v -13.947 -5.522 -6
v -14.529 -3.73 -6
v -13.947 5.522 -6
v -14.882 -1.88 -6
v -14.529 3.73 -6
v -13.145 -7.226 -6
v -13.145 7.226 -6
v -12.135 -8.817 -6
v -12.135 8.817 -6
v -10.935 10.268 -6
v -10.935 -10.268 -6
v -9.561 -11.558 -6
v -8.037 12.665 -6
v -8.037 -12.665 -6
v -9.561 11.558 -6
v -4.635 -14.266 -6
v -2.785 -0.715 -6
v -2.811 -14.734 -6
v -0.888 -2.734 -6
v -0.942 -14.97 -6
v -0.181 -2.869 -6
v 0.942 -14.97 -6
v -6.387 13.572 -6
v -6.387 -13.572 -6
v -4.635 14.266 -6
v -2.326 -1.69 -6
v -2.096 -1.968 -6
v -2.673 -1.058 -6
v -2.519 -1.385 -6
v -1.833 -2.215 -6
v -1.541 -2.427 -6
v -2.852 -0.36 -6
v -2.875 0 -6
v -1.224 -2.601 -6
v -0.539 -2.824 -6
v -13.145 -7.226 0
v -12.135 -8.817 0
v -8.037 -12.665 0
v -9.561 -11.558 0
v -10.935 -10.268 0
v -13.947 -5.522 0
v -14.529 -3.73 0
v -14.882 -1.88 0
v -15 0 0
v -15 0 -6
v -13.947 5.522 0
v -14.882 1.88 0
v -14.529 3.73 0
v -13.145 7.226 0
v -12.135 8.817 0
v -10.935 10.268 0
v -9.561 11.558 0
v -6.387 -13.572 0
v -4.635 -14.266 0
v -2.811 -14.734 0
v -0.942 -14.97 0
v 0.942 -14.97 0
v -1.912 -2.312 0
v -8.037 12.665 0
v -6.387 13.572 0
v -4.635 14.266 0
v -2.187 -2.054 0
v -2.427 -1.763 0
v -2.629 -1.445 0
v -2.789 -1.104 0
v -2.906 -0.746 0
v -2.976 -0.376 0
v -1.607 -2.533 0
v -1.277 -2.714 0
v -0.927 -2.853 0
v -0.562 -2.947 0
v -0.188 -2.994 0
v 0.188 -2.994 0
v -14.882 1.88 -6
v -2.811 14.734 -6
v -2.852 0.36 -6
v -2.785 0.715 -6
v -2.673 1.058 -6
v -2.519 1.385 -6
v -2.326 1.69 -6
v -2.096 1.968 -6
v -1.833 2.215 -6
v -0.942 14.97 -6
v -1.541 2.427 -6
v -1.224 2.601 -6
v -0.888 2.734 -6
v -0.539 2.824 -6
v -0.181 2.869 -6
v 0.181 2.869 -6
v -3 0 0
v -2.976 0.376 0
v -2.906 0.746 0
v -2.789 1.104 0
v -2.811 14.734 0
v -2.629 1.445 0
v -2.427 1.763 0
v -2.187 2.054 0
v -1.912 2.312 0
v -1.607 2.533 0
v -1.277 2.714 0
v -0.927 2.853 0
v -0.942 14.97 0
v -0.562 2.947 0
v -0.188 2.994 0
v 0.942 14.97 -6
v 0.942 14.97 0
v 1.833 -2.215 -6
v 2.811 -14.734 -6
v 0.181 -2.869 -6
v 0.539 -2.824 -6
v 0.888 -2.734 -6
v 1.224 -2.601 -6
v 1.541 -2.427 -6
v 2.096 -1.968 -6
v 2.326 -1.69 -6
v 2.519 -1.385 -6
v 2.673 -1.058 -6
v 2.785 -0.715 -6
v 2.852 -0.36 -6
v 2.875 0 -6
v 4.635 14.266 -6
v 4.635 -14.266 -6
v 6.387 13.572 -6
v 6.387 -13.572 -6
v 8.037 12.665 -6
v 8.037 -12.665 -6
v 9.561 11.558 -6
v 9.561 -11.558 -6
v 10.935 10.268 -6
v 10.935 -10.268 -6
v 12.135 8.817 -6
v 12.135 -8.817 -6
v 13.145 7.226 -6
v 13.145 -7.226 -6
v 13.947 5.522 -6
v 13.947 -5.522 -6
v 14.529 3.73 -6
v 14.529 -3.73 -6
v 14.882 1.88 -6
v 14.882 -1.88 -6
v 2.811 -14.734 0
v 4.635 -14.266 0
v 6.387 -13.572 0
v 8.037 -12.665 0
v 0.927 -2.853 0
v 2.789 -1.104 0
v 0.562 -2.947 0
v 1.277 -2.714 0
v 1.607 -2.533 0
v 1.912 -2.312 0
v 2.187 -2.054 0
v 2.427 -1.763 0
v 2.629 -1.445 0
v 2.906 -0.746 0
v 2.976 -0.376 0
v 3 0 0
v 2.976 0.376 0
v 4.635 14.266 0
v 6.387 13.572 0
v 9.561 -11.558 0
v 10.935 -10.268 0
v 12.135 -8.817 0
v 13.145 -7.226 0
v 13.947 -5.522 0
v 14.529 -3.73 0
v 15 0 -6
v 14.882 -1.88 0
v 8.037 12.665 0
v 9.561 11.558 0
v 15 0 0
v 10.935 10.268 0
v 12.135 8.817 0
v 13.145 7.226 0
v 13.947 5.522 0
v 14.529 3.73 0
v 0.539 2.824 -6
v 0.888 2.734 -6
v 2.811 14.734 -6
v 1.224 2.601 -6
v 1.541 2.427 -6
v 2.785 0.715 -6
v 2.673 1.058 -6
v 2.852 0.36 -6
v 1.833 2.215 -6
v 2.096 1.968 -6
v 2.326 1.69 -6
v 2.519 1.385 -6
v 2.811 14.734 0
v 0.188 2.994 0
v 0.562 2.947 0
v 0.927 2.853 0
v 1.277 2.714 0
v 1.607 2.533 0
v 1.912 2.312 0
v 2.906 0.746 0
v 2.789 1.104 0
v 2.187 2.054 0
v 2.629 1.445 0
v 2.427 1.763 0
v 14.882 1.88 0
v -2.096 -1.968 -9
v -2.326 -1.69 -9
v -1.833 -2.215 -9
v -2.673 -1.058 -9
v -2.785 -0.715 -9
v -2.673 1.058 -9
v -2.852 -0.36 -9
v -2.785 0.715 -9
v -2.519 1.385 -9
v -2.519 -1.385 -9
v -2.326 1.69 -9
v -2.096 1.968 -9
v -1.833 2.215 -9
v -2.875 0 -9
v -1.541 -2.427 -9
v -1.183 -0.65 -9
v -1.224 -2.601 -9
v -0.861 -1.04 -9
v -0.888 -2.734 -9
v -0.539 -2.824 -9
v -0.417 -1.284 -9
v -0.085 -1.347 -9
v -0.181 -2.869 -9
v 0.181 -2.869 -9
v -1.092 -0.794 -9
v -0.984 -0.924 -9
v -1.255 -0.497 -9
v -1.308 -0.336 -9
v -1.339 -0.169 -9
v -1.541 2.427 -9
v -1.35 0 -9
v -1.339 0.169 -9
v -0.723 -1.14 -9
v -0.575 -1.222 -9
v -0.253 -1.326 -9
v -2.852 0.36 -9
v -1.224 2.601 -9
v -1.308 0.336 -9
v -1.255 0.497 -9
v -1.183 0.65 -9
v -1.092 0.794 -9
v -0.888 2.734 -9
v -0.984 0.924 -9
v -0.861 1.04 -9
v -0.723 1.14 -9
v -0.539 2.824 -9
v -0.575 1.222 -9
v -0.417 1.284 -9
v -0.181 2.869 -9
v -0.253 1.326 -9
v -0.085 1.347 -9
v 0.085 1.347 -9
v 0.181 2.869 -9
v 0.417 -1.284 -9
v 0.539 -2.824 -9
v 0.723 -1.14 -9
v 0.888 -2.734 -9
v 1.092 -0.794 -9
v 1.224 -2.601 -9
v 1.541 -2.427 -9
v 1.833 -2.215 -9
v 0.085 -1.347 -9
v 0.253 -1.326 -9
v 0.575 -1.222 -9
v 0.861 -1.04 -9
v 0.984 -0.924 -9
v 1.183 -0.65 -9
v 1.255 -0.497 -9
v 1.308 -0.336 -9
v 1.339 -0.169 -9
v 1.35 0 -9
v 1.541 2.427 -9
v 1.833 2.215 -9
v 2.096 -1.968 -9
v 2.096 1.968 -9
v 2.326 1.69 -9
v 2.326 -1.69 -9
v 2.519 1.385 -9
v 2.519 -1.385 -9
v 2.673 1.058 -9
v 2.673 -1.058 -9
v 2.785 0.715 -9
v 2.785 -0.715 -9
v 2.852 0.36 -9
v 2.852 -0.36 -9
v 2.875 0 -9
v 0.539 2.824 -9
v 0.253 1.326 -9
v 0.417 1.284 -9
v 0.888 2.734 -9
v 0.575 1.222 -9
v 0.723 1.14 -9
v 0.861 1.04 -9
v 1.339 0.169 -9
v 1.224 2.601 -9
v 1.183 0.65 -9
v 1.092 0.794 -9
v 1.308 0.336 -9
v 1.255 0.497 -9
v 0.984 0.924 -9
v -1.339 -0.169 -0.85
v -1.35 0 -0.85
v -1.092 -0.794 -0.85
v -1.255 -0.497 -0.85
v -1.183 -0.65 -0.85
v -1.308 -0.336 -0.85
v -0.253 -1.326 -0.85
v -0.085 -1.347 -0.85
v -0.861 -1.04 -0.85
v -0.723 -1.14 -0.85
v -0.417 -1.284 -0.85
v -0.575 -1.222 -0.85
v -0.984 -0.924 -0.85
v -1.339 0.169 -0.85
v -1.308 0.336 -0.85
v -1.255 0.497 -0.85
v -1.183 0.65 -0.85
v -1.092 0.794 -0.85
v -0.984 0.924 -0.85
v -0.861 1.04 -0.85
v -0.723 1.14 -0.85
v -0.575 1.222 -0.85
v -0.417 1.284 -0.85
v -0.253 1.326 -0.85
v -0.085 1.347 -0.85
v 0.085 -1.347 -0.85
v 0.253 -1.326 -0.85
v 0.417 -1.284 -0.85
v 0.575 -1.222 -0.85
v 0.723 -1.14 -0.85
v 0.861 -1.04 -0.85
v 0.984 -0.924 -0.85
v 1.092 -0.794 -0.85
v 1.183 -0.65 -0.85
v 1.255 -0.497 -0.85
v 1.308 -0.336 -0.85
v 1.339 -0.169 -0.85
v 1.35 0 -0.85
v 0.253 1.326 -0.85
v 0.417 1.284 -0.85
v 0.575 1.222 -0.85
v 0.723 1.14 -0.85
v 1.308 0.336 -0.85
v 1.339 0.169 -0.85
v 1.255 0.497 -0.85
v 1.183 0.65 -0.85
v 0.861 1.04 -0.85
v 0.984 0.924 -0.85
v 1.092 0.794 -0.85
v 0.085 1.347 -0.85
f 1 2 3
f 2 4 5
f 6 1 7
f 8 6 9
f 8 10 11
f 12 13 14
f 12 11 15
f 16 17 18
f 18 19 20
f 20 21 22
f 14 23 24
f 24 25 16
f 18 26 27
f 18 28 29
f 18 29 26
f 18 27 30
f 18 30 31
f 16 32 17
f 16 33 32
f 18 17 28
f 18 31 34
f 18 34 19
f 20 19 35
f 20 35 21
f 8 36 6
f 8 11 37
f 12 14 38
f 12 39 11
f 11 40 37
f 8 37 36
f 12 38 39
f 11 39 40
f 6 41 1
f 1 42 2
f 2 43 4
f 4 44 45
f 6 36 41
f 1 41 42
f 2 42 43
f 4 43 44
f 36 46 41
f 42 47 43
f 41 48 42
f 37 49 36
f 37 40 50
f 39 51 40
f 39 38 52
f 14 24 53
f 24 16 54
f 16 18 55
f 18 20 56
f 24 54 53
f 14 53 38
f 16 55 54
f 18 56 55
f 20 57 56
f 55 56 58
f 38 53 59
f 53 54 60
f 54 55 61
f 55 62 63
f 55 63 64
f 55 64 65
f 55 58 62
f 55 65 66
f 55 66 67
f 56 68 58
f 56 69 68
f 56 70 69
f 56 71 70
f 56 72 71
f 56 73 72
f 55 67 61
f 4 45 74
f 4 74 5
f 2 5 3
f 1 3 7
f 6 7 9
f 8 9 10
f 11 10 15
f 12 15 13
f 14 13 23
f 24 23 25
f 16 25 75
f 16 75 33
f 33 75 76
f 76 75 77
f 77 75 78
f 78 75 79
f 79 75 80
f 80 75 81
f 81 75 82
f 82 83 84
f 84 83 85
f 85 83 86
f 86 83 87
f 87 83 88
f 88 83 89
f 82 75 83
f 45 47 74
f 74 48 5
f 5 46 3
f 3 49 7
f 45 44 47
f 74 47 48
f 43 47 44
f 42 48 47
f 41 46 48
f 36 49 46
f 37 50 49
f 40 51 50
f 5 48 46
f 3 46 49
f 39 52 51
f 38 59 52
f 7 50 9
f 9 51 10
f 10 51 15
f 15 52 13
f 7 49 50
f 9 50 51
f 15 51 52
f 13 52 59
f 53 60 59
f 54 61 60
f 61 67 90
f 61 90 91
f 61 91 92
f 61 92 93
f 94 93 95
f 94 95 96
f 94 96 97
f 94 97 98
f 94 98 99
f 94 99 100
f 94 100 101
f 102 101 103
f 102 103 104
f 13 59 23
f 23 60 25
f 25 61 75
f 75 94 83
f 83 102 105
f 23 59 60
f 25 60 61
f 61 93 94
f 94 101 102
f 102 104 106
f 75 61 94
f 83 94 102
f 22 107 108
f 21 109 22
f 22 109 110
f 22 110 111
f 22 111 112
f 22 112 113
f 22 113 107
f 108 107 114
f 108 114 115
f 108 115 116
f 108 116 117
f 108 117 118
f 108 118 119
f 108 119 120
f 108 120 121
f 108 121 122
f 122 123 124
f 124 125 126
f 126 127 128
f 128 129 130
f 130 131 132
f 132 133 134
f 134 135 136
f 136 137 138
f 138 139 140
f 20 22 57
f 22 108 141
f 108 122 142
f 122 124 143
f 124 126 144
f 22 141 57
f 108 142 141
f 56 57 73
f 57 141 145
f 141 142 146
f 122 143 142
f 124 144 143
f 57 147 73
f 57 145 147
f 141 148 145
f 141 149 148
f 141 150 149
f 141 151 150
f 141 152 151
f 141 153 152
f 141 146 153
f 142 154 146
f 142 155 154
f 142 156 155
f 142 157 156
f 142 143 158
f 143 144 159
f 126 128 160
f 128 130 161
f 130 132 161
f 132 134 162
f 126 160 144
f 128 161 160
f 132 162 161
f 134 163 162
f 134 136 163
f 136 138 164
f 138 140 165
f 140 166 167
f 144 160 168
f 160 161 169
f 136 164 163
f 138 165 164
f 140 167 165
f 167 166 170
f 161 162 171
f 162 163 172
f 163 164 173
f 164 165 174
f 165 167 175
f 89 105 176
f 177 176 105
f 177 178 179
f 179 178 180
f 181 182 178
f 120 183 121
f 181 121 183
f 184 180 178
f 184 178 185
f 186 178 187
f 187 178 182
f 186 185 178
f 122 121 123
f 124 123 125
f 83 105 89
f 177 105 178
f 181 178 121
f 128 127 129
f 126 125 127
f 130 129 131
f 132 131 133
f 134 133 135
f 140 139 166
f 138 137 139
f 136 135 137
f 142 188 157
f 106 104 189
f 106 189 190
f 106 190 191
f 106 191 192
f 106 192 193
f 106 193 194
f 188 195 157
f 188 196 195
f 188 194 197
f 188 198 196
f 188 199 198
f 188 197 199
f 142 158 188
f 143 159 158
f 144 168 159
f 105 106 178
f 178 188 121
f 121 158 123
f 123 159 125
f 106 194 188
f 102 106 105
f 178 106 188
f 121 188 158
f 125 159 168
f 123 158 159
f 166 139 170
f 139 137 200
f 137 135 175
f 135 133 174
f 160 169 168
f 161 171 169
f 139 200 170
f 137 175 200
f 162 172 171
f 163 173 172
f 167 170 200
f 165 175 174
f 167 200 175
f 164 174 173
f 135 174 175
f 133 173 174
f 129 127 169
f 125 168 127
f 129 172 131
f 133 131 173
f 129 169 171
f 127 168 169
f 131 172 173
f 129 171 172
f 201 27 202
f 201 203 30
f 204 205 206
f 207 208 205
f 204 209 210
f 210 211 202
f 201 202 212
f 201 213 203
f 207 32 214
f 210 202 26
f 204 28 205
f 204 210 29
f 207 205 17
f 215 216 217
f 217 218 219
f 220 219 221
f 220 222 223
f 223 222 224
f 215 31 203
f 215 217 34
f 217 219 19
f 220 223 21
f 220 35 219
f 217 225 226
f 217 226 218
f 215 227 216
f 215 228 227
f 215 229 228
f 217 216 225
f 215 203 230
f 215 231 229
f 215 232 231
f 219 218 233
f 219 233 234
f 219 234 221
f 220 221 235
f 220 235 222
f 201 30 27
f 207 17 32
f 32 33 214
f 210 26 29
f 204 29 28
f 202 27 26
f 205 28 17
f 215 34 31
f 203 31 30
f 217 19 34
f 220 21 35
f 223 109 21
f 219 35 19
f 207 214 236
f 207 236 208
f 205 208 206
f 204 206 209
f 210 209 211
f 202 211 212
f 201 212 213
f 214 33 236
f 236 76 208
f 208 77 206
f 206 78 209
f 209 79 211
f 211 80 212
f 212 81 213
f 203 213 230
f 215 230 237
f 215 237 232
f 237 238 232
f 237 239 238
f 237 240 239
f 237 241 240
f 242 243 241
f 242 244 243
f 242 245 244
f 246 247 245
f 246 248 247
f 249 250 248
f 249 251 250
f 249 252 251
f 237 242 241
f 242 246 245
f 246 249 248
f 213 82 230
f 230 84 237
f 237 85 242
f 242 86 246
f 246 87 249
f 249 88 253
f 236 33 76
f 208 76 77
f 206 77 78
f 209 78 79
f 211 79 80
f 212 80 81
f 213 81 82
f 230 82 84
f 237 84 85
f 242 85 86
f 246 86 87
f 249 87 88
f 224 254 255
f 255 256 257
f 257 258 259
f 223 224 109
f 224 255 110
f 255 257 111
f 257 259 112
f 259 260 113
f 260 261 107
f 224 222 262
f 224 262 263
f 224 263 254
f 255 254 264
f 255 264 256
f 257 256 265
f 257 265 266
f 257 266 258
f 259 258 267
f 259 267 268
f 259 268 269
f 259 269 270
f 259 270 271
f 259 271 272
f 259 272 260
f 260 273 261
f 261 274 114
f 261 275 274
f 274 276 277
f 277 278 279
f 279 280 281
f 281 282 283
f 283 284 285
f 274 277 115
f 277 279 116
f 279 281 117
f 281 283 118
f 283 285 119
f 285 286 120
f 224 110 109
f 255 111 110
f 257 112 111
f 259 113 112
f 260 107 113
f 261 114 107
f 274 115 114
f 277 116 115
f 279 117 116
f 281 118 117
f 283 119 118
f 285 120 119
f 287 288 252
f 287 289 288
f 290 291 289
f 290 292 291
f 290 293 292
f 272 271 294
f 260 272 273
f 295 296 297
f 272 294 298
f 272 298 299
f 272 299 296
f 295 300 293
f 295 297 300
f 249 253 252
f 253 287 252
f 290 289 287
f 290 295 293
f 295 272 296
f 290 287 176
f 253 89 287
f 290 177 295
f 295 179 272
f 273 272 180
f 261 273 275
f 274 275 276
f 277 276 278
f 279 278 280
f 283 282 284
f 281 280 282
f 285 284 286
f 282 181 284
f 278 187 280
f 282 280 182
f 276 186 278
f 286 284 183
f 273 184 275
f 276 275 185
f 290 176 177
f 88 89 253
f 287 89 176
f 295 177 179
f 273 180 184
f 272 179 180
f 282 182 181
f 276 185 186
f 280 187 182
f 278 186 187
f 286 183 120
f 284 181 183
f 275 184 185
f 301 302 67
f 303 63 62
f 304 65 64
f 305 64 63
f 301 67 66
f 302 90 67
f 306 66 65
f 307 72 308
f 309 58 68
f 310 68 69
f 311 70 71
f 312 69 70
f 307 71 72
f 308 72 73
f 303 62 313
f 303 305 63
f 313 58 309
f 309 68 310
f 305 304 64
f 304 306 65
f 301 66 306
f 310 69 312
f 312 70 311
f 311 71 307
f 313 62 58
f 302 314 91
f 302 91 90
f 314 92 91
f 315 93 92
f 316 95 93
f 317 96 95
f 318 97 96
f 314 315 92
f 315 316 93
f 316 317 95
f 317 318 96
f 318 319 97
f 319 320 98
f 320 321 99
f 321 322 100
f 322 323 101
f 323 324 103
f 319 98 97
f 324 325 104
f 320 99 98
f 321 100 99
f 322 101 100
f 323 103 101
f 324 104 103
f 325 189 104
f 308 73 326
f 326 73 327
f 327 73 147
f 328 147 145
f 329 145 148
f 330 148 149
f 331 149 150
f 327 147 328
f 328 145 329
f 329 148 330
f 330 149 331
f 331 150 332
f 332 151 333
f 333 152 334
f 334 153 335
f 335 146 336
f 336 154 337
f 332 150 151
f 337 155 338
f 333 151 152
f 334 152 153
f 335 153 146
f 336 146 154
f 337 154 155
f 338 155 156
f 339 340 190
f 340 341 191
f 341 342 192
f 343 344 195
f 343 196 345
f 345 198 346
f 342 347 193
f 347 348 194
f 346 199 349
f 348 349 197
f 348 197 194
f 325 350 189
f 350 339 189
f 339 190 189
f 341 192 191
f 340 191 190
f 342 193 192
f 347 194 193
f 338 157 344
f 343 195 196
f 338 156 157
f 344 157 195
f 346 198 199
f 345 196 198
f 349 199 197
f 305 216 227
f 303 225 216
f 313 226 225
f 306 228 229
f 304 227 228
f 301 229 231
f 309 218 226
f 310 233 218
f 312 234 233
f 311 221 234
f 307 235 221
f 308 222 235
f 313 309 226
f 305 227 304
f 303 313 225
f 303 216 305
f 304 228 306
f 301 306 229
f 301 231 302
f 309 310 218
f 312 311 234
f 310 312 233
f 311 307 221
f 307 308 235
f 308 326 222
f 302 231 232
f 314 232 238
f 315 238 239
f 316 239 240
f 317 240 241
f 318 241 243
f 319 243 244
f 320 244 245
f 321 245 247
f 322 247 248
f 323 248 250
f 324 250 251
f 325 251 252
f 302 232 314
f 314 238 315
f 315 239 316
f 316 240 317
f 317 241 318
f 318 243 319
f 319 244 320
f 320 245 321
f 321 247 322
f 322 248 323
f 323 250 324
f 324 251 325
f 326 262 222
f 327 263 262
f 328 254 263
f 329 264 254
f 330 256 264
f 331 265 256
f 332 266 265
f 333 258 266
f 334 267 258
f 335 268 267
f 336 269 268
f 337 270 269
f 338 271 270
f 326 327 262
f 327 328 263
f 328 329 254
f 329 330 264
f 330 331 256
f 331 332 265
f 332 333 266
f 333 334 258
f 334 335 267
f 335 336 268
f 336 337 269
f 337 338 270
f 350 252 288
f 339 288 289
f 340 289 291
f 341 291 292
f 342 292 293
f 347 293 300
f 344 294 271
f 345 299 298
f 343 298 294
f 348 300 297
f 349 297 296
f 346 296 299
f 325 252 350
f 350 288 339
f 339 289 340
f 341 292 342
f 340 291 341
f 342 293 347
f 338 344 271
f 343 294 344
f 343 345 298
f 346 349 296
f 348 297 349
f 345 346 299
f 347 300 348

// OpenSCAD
$fn = 50;

difference() {
	union() {
		translate(v = [0, 0, -6.0]) {
			cylinder(h = 6, r = 15.0);
		}
		#translate(v = [0, 0, -9.0]) {
			cylinder(h = 9, r = 2.875);
		}
	}
	union() {
		translate(v = [0, 0, 0]) {
			rotate(a = [0, 0, 0]) {
				difference() {
					union() {
						translate(v = [0, 0, -9.0]) {
							cylinder(h = 9, r = 1.0);
						}
						translate(v = [0, 0, -0.85]) {
							cylinder(h = 0.85, r1 = 1.35, r2 = 3.0);
						}
						translate(v = [0, 0, -9.0]) {
							cylinder(h = 9, r = 1.35);
						}
						translate(v = [0, 0, -9.0]) {
							cylinder(h = 9, r = 1.0);
						}
					}
					union();
				}
			}
		}
	}
}
